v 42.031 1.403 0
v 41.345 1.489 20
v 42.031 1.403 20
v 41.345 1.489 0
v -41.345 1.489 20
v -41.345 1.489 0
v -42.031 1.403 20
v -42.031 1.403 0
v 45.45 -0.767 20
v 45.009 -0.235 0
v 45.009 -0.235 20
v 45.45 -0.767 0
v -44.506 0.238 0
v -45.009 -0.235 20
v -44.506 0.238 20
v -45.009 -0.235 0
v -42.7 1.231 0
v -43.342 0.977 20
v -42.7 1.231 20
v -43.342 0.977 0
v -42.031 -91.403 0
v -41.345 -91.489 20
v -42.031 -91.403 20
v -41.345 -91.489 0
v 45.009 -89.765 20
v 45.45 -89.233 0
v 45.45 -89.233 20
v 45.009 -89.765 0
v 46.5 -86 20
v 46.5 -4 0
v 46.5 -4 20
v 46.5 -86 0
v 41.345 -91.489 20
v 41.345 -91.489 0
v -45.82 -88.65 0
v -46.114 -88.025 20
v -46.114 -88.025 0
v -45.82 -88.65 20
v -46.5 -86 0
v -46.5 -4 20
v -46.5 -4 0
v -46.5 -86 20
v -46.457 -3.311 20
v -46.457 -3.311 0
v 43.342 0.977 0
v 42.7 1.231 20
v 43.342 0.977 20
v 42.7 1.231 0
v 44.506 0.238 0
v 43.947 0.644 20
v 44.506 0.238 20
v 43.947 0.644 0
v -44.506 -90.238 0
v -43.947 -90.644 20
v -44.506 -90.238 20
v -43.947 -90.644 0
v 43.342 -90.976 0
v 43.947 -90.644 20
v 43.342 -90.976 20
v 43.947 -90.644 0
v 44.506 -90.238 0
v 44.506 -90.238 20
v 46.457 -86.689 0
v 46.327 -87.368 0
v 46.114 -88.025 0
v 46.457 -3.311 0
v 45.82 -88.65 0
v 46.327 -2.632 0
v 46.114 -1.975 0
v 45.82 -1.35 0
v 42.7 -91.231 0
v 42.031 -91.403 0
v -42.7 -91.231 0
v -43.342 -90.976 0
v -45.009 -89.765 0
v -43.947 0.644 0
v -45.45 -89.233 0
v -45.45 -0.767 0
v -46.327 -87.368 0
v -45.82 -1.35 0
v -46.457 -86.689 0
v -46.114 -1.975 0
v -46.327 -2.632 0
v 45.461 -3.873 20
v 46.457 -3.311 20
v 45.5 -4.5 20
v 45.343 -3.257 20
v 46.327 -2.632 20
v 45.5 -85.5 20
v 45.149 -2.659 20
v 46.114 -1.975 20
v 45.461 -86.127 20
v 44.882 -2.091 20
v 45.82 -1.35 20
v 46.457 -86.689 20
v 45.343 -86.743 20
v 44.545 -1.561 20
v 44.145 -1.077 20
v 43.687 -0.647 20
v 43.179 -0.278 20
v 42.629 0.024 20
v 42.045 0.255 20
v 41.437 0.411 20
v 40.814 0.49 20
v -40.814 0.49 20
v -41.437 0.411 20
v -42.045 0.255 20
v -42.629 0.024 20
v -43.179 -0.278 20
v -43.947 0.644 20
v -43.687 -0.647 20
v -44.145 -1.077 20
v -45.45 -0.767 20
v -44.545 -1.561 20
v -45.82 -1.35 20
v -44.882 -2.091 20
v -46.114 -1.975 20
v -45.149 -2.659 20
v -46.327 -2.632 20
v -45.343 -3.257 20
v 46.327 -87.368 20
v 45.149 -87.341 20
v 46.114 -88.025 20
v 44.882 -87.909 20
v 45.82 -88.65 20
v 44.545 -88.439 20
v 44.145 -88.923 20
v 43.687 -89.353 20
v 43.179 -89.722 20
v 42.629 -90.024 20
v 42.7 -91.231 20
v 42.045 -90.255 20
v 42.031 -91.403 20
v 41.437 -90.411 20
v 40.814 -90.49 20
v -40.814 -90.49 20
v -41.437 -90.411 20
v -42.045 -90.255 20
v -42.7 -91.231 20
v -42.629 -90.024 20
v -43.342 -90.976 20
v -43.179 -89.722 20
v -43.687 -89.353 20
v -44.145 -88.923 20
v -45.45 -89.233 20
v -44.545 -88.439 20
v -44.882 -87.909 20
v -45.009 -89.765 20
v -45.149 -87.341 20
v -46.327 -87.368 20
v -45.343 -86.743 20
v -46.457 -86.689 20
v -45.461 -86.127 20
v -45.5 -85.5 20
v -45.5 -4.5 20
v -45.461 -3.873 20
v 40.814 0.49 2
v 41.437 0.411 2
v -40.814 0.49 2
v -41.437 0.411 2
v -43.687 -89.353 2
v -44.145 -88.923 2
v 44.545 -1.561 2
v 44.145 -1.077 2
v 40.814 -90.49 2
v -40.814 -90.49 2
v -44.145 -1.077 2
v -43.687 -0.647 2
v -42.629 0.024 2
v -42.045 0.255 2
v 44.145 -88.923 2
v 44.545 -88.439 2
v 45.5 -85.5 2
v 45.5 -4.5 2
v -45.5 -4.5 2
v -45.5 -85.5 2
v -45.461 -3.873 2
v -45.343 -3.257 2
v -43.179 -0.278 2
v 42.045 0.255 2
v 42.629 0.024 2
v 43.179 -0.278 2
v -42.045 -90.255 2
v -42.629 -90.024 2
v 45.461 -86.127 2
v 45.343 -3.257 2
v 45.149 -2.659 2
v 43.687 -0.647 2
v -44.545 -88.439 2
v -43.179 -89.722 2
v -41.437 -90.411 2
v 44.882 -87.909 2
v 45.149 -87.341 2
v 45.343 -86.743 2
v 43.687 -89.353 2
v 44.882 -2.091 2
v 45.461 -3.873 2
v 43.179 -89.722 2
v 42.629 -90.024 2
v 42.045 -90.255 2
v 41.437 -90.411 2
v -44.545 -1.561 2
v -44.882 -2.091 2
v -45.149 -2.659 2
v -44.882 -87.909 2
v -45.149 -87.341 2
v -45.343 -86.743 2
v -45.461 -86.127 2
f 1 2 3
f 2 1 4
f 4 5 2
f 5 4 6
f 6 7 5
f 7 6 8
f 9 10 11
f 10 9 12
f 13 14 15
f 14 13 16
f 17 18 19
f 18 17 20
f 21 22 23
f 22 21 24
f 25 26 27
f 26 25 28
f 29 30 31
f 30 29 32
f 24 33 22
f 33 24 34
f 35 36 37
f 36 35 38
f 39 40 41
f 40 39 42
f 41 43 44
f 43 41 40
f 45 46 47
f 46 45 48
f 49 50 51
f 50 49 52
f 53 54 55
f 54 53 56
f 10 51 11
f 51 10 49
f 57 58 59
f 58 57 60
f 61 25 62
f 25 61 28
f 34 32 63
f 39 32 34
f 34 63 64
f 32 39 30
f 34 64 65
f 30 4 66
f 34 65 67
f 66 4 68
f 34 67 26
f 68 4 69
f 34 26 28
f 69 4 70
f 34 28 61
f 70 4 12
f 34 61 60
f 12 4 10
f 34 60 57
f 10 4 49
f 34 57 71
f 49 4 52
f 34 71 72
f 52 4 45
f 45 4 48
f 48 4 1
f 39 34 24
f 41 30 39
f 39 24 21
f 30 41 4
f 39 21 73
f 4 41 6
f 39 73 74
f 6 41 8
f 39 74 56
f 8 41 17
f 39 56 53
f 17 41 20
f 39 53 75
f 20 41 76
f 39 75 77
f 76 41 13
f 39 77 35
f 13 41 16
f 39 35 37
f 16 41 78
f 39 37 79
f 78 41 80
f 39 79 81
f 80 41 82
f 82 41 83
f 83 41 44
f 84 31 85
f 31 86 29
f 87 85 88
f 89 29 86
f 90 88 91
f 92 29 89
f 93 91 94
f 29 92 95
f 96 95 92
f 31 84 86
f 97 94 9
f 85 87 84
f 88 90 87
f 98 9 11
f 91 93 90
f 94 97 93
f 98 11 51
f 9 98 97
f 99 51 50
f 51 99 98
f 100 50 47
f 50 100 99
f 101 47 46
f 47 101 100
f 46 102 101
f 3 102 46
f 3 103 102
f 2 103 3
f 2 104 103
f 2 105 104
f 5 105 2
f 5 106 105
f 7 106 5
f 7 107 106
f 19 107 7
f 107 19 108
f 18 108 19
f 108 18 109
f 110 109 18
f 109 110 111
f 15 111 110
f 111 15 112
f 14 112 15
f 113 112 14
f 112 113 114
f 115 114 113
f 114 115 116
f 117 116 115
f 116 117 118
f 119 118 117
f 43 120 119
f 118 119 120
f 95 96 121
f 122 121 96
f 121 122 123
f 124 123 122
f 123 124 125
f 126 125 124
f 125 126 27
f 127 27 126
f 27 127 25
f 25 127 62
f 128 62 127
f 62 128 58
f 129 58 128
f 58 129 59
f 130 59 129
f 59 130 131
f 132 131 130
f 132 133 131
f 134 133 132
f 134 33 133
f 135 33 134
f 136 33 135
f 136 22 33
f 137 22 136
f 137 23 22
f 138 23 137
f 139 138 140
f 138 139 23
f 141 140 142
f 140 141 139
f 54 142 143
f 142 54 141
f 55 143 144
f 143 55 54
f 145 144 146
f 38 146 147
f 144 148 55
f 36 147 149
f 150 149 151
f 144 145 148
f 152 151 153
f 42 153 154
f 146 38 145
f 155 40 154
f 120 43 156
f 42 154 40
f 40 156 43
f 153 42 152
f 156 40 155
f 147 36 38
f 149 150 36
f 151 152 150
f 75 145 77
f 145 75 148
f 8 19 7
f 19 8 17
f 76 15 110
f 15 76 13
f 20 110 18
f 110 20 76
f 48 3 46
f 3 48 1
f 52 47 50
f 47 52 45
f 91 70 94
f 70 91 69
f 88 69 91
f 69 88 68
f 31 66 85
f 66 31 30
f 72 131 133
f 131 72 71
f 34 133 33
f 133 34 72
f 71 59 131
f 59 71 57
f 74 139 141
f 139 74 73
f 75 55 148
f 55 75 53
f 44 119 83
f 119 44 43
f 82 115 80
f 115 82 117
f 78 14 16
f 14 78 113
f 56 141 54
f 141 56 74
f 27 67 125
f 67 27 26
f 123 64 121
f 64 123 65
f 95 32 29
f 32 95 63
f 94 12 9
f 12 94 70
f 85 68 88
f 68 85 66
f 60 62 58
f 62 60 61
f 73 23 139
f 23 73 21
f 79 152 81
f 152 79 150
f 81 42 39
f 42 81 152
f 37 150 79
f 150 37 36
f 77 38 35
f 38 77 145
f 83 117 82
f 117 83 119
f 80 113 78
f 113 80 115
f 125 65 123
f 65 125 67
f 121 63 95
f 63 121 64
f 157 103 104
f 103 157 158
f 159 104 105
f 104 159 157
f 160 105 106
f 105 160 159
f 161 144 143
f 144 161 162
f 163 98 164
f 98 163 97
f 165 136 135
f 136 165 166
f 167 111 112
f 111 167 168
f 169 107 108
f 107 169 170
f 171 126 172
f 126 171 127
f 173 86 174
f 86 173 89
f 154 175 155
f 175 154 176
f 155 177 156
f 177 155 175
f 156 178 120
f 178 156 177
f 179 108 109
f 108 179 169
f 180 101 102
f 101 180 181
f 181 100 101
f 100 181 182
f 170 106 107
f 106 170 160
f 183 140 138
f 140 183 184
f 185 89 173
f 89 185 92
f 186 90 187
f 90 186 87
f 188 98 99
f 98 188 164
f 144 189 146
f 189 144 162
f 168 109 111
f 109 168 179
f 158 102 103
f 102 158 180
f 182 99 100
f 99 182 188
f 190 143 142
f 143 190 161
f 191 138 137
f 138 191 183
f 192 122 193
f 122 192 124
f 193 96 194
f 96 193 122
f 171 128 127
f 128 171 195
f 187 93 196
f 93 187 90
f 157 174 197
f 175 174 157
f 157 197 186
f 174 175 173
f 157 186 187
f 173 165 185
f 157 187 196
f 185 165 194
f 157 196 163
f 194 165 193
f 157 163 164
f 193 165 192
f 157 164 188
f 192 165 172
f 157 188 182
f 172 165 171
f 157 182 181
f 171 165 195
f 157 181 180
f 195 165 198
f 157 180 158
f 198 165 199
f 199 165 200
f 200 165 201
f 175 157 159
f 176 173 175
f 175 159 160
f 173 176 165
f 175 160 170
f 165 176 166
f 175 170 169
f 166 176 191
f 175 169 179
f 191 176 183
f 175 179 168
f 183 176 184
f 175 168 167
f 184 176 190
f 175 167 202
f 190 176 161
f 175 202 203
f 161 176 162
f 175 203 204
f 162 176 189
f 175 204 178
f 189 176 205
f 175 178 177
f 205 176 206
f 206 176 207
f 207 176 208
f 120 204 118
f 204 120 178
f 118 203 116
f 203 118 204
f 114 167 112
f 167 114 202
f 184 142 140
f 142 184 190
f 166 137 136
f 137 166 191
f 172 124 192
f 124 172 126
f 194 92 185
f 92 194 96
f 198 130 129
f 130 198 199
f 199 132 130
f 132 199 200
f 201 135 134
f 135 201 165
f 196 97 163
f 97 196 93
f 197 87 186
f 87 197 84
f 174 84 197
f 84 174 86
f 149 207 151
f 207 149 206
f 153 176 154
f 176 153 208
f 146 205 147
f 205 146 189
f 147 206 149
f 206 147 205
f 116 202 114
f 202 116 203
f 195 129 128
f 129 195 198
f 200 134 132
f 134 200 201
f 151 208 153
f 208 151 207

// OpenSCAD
$fn = 50;


difference() {
	union() {
		translate(v = [0, -45.0000000000, 0]) {
			hull() {
				translate(v = [-41.0000000000, 41.0000000000, 0]) {
					cylinder(h = 20, r = 5.5000000000);
				}
				translate(v = [41.0000000000, 41.0000000000, 0]) {
					cylinder(h = 20, r = 5.5000000000);
				}
				translate(v = [-41.0000000000, -41.0000000000, 0]) {
					cylinder(h = 20, r = 5.5000000000);
				}
				translate(v = [41.0000000000, -41.0000000000, 0]) {
					cylinder(h = 20, r = 5.5000000000);
				}
			}
		}
	}
	union() {
		translate(v = [0, -45.0000000000, 2]) {
			hull() {
				translate(v = [-40.5000000000, 40.5000000000, 0]) {
					cylinder(h = 40, r = 5);
				}
				translate(v = [40.5000000000, 40.5000000000, 0]) {
					cylinder(h = 40, r = 5);
				}
				translate(v = [-40.5000000000, -40.5000000000, 0]) {
					cylinder(h = 40, r = 5);
				}
				translate(v = [40.5000000000, -40.5000000000, 0]) {
					cylinder(h = 40, r = 5);
				}
			}
		}
	}
}
